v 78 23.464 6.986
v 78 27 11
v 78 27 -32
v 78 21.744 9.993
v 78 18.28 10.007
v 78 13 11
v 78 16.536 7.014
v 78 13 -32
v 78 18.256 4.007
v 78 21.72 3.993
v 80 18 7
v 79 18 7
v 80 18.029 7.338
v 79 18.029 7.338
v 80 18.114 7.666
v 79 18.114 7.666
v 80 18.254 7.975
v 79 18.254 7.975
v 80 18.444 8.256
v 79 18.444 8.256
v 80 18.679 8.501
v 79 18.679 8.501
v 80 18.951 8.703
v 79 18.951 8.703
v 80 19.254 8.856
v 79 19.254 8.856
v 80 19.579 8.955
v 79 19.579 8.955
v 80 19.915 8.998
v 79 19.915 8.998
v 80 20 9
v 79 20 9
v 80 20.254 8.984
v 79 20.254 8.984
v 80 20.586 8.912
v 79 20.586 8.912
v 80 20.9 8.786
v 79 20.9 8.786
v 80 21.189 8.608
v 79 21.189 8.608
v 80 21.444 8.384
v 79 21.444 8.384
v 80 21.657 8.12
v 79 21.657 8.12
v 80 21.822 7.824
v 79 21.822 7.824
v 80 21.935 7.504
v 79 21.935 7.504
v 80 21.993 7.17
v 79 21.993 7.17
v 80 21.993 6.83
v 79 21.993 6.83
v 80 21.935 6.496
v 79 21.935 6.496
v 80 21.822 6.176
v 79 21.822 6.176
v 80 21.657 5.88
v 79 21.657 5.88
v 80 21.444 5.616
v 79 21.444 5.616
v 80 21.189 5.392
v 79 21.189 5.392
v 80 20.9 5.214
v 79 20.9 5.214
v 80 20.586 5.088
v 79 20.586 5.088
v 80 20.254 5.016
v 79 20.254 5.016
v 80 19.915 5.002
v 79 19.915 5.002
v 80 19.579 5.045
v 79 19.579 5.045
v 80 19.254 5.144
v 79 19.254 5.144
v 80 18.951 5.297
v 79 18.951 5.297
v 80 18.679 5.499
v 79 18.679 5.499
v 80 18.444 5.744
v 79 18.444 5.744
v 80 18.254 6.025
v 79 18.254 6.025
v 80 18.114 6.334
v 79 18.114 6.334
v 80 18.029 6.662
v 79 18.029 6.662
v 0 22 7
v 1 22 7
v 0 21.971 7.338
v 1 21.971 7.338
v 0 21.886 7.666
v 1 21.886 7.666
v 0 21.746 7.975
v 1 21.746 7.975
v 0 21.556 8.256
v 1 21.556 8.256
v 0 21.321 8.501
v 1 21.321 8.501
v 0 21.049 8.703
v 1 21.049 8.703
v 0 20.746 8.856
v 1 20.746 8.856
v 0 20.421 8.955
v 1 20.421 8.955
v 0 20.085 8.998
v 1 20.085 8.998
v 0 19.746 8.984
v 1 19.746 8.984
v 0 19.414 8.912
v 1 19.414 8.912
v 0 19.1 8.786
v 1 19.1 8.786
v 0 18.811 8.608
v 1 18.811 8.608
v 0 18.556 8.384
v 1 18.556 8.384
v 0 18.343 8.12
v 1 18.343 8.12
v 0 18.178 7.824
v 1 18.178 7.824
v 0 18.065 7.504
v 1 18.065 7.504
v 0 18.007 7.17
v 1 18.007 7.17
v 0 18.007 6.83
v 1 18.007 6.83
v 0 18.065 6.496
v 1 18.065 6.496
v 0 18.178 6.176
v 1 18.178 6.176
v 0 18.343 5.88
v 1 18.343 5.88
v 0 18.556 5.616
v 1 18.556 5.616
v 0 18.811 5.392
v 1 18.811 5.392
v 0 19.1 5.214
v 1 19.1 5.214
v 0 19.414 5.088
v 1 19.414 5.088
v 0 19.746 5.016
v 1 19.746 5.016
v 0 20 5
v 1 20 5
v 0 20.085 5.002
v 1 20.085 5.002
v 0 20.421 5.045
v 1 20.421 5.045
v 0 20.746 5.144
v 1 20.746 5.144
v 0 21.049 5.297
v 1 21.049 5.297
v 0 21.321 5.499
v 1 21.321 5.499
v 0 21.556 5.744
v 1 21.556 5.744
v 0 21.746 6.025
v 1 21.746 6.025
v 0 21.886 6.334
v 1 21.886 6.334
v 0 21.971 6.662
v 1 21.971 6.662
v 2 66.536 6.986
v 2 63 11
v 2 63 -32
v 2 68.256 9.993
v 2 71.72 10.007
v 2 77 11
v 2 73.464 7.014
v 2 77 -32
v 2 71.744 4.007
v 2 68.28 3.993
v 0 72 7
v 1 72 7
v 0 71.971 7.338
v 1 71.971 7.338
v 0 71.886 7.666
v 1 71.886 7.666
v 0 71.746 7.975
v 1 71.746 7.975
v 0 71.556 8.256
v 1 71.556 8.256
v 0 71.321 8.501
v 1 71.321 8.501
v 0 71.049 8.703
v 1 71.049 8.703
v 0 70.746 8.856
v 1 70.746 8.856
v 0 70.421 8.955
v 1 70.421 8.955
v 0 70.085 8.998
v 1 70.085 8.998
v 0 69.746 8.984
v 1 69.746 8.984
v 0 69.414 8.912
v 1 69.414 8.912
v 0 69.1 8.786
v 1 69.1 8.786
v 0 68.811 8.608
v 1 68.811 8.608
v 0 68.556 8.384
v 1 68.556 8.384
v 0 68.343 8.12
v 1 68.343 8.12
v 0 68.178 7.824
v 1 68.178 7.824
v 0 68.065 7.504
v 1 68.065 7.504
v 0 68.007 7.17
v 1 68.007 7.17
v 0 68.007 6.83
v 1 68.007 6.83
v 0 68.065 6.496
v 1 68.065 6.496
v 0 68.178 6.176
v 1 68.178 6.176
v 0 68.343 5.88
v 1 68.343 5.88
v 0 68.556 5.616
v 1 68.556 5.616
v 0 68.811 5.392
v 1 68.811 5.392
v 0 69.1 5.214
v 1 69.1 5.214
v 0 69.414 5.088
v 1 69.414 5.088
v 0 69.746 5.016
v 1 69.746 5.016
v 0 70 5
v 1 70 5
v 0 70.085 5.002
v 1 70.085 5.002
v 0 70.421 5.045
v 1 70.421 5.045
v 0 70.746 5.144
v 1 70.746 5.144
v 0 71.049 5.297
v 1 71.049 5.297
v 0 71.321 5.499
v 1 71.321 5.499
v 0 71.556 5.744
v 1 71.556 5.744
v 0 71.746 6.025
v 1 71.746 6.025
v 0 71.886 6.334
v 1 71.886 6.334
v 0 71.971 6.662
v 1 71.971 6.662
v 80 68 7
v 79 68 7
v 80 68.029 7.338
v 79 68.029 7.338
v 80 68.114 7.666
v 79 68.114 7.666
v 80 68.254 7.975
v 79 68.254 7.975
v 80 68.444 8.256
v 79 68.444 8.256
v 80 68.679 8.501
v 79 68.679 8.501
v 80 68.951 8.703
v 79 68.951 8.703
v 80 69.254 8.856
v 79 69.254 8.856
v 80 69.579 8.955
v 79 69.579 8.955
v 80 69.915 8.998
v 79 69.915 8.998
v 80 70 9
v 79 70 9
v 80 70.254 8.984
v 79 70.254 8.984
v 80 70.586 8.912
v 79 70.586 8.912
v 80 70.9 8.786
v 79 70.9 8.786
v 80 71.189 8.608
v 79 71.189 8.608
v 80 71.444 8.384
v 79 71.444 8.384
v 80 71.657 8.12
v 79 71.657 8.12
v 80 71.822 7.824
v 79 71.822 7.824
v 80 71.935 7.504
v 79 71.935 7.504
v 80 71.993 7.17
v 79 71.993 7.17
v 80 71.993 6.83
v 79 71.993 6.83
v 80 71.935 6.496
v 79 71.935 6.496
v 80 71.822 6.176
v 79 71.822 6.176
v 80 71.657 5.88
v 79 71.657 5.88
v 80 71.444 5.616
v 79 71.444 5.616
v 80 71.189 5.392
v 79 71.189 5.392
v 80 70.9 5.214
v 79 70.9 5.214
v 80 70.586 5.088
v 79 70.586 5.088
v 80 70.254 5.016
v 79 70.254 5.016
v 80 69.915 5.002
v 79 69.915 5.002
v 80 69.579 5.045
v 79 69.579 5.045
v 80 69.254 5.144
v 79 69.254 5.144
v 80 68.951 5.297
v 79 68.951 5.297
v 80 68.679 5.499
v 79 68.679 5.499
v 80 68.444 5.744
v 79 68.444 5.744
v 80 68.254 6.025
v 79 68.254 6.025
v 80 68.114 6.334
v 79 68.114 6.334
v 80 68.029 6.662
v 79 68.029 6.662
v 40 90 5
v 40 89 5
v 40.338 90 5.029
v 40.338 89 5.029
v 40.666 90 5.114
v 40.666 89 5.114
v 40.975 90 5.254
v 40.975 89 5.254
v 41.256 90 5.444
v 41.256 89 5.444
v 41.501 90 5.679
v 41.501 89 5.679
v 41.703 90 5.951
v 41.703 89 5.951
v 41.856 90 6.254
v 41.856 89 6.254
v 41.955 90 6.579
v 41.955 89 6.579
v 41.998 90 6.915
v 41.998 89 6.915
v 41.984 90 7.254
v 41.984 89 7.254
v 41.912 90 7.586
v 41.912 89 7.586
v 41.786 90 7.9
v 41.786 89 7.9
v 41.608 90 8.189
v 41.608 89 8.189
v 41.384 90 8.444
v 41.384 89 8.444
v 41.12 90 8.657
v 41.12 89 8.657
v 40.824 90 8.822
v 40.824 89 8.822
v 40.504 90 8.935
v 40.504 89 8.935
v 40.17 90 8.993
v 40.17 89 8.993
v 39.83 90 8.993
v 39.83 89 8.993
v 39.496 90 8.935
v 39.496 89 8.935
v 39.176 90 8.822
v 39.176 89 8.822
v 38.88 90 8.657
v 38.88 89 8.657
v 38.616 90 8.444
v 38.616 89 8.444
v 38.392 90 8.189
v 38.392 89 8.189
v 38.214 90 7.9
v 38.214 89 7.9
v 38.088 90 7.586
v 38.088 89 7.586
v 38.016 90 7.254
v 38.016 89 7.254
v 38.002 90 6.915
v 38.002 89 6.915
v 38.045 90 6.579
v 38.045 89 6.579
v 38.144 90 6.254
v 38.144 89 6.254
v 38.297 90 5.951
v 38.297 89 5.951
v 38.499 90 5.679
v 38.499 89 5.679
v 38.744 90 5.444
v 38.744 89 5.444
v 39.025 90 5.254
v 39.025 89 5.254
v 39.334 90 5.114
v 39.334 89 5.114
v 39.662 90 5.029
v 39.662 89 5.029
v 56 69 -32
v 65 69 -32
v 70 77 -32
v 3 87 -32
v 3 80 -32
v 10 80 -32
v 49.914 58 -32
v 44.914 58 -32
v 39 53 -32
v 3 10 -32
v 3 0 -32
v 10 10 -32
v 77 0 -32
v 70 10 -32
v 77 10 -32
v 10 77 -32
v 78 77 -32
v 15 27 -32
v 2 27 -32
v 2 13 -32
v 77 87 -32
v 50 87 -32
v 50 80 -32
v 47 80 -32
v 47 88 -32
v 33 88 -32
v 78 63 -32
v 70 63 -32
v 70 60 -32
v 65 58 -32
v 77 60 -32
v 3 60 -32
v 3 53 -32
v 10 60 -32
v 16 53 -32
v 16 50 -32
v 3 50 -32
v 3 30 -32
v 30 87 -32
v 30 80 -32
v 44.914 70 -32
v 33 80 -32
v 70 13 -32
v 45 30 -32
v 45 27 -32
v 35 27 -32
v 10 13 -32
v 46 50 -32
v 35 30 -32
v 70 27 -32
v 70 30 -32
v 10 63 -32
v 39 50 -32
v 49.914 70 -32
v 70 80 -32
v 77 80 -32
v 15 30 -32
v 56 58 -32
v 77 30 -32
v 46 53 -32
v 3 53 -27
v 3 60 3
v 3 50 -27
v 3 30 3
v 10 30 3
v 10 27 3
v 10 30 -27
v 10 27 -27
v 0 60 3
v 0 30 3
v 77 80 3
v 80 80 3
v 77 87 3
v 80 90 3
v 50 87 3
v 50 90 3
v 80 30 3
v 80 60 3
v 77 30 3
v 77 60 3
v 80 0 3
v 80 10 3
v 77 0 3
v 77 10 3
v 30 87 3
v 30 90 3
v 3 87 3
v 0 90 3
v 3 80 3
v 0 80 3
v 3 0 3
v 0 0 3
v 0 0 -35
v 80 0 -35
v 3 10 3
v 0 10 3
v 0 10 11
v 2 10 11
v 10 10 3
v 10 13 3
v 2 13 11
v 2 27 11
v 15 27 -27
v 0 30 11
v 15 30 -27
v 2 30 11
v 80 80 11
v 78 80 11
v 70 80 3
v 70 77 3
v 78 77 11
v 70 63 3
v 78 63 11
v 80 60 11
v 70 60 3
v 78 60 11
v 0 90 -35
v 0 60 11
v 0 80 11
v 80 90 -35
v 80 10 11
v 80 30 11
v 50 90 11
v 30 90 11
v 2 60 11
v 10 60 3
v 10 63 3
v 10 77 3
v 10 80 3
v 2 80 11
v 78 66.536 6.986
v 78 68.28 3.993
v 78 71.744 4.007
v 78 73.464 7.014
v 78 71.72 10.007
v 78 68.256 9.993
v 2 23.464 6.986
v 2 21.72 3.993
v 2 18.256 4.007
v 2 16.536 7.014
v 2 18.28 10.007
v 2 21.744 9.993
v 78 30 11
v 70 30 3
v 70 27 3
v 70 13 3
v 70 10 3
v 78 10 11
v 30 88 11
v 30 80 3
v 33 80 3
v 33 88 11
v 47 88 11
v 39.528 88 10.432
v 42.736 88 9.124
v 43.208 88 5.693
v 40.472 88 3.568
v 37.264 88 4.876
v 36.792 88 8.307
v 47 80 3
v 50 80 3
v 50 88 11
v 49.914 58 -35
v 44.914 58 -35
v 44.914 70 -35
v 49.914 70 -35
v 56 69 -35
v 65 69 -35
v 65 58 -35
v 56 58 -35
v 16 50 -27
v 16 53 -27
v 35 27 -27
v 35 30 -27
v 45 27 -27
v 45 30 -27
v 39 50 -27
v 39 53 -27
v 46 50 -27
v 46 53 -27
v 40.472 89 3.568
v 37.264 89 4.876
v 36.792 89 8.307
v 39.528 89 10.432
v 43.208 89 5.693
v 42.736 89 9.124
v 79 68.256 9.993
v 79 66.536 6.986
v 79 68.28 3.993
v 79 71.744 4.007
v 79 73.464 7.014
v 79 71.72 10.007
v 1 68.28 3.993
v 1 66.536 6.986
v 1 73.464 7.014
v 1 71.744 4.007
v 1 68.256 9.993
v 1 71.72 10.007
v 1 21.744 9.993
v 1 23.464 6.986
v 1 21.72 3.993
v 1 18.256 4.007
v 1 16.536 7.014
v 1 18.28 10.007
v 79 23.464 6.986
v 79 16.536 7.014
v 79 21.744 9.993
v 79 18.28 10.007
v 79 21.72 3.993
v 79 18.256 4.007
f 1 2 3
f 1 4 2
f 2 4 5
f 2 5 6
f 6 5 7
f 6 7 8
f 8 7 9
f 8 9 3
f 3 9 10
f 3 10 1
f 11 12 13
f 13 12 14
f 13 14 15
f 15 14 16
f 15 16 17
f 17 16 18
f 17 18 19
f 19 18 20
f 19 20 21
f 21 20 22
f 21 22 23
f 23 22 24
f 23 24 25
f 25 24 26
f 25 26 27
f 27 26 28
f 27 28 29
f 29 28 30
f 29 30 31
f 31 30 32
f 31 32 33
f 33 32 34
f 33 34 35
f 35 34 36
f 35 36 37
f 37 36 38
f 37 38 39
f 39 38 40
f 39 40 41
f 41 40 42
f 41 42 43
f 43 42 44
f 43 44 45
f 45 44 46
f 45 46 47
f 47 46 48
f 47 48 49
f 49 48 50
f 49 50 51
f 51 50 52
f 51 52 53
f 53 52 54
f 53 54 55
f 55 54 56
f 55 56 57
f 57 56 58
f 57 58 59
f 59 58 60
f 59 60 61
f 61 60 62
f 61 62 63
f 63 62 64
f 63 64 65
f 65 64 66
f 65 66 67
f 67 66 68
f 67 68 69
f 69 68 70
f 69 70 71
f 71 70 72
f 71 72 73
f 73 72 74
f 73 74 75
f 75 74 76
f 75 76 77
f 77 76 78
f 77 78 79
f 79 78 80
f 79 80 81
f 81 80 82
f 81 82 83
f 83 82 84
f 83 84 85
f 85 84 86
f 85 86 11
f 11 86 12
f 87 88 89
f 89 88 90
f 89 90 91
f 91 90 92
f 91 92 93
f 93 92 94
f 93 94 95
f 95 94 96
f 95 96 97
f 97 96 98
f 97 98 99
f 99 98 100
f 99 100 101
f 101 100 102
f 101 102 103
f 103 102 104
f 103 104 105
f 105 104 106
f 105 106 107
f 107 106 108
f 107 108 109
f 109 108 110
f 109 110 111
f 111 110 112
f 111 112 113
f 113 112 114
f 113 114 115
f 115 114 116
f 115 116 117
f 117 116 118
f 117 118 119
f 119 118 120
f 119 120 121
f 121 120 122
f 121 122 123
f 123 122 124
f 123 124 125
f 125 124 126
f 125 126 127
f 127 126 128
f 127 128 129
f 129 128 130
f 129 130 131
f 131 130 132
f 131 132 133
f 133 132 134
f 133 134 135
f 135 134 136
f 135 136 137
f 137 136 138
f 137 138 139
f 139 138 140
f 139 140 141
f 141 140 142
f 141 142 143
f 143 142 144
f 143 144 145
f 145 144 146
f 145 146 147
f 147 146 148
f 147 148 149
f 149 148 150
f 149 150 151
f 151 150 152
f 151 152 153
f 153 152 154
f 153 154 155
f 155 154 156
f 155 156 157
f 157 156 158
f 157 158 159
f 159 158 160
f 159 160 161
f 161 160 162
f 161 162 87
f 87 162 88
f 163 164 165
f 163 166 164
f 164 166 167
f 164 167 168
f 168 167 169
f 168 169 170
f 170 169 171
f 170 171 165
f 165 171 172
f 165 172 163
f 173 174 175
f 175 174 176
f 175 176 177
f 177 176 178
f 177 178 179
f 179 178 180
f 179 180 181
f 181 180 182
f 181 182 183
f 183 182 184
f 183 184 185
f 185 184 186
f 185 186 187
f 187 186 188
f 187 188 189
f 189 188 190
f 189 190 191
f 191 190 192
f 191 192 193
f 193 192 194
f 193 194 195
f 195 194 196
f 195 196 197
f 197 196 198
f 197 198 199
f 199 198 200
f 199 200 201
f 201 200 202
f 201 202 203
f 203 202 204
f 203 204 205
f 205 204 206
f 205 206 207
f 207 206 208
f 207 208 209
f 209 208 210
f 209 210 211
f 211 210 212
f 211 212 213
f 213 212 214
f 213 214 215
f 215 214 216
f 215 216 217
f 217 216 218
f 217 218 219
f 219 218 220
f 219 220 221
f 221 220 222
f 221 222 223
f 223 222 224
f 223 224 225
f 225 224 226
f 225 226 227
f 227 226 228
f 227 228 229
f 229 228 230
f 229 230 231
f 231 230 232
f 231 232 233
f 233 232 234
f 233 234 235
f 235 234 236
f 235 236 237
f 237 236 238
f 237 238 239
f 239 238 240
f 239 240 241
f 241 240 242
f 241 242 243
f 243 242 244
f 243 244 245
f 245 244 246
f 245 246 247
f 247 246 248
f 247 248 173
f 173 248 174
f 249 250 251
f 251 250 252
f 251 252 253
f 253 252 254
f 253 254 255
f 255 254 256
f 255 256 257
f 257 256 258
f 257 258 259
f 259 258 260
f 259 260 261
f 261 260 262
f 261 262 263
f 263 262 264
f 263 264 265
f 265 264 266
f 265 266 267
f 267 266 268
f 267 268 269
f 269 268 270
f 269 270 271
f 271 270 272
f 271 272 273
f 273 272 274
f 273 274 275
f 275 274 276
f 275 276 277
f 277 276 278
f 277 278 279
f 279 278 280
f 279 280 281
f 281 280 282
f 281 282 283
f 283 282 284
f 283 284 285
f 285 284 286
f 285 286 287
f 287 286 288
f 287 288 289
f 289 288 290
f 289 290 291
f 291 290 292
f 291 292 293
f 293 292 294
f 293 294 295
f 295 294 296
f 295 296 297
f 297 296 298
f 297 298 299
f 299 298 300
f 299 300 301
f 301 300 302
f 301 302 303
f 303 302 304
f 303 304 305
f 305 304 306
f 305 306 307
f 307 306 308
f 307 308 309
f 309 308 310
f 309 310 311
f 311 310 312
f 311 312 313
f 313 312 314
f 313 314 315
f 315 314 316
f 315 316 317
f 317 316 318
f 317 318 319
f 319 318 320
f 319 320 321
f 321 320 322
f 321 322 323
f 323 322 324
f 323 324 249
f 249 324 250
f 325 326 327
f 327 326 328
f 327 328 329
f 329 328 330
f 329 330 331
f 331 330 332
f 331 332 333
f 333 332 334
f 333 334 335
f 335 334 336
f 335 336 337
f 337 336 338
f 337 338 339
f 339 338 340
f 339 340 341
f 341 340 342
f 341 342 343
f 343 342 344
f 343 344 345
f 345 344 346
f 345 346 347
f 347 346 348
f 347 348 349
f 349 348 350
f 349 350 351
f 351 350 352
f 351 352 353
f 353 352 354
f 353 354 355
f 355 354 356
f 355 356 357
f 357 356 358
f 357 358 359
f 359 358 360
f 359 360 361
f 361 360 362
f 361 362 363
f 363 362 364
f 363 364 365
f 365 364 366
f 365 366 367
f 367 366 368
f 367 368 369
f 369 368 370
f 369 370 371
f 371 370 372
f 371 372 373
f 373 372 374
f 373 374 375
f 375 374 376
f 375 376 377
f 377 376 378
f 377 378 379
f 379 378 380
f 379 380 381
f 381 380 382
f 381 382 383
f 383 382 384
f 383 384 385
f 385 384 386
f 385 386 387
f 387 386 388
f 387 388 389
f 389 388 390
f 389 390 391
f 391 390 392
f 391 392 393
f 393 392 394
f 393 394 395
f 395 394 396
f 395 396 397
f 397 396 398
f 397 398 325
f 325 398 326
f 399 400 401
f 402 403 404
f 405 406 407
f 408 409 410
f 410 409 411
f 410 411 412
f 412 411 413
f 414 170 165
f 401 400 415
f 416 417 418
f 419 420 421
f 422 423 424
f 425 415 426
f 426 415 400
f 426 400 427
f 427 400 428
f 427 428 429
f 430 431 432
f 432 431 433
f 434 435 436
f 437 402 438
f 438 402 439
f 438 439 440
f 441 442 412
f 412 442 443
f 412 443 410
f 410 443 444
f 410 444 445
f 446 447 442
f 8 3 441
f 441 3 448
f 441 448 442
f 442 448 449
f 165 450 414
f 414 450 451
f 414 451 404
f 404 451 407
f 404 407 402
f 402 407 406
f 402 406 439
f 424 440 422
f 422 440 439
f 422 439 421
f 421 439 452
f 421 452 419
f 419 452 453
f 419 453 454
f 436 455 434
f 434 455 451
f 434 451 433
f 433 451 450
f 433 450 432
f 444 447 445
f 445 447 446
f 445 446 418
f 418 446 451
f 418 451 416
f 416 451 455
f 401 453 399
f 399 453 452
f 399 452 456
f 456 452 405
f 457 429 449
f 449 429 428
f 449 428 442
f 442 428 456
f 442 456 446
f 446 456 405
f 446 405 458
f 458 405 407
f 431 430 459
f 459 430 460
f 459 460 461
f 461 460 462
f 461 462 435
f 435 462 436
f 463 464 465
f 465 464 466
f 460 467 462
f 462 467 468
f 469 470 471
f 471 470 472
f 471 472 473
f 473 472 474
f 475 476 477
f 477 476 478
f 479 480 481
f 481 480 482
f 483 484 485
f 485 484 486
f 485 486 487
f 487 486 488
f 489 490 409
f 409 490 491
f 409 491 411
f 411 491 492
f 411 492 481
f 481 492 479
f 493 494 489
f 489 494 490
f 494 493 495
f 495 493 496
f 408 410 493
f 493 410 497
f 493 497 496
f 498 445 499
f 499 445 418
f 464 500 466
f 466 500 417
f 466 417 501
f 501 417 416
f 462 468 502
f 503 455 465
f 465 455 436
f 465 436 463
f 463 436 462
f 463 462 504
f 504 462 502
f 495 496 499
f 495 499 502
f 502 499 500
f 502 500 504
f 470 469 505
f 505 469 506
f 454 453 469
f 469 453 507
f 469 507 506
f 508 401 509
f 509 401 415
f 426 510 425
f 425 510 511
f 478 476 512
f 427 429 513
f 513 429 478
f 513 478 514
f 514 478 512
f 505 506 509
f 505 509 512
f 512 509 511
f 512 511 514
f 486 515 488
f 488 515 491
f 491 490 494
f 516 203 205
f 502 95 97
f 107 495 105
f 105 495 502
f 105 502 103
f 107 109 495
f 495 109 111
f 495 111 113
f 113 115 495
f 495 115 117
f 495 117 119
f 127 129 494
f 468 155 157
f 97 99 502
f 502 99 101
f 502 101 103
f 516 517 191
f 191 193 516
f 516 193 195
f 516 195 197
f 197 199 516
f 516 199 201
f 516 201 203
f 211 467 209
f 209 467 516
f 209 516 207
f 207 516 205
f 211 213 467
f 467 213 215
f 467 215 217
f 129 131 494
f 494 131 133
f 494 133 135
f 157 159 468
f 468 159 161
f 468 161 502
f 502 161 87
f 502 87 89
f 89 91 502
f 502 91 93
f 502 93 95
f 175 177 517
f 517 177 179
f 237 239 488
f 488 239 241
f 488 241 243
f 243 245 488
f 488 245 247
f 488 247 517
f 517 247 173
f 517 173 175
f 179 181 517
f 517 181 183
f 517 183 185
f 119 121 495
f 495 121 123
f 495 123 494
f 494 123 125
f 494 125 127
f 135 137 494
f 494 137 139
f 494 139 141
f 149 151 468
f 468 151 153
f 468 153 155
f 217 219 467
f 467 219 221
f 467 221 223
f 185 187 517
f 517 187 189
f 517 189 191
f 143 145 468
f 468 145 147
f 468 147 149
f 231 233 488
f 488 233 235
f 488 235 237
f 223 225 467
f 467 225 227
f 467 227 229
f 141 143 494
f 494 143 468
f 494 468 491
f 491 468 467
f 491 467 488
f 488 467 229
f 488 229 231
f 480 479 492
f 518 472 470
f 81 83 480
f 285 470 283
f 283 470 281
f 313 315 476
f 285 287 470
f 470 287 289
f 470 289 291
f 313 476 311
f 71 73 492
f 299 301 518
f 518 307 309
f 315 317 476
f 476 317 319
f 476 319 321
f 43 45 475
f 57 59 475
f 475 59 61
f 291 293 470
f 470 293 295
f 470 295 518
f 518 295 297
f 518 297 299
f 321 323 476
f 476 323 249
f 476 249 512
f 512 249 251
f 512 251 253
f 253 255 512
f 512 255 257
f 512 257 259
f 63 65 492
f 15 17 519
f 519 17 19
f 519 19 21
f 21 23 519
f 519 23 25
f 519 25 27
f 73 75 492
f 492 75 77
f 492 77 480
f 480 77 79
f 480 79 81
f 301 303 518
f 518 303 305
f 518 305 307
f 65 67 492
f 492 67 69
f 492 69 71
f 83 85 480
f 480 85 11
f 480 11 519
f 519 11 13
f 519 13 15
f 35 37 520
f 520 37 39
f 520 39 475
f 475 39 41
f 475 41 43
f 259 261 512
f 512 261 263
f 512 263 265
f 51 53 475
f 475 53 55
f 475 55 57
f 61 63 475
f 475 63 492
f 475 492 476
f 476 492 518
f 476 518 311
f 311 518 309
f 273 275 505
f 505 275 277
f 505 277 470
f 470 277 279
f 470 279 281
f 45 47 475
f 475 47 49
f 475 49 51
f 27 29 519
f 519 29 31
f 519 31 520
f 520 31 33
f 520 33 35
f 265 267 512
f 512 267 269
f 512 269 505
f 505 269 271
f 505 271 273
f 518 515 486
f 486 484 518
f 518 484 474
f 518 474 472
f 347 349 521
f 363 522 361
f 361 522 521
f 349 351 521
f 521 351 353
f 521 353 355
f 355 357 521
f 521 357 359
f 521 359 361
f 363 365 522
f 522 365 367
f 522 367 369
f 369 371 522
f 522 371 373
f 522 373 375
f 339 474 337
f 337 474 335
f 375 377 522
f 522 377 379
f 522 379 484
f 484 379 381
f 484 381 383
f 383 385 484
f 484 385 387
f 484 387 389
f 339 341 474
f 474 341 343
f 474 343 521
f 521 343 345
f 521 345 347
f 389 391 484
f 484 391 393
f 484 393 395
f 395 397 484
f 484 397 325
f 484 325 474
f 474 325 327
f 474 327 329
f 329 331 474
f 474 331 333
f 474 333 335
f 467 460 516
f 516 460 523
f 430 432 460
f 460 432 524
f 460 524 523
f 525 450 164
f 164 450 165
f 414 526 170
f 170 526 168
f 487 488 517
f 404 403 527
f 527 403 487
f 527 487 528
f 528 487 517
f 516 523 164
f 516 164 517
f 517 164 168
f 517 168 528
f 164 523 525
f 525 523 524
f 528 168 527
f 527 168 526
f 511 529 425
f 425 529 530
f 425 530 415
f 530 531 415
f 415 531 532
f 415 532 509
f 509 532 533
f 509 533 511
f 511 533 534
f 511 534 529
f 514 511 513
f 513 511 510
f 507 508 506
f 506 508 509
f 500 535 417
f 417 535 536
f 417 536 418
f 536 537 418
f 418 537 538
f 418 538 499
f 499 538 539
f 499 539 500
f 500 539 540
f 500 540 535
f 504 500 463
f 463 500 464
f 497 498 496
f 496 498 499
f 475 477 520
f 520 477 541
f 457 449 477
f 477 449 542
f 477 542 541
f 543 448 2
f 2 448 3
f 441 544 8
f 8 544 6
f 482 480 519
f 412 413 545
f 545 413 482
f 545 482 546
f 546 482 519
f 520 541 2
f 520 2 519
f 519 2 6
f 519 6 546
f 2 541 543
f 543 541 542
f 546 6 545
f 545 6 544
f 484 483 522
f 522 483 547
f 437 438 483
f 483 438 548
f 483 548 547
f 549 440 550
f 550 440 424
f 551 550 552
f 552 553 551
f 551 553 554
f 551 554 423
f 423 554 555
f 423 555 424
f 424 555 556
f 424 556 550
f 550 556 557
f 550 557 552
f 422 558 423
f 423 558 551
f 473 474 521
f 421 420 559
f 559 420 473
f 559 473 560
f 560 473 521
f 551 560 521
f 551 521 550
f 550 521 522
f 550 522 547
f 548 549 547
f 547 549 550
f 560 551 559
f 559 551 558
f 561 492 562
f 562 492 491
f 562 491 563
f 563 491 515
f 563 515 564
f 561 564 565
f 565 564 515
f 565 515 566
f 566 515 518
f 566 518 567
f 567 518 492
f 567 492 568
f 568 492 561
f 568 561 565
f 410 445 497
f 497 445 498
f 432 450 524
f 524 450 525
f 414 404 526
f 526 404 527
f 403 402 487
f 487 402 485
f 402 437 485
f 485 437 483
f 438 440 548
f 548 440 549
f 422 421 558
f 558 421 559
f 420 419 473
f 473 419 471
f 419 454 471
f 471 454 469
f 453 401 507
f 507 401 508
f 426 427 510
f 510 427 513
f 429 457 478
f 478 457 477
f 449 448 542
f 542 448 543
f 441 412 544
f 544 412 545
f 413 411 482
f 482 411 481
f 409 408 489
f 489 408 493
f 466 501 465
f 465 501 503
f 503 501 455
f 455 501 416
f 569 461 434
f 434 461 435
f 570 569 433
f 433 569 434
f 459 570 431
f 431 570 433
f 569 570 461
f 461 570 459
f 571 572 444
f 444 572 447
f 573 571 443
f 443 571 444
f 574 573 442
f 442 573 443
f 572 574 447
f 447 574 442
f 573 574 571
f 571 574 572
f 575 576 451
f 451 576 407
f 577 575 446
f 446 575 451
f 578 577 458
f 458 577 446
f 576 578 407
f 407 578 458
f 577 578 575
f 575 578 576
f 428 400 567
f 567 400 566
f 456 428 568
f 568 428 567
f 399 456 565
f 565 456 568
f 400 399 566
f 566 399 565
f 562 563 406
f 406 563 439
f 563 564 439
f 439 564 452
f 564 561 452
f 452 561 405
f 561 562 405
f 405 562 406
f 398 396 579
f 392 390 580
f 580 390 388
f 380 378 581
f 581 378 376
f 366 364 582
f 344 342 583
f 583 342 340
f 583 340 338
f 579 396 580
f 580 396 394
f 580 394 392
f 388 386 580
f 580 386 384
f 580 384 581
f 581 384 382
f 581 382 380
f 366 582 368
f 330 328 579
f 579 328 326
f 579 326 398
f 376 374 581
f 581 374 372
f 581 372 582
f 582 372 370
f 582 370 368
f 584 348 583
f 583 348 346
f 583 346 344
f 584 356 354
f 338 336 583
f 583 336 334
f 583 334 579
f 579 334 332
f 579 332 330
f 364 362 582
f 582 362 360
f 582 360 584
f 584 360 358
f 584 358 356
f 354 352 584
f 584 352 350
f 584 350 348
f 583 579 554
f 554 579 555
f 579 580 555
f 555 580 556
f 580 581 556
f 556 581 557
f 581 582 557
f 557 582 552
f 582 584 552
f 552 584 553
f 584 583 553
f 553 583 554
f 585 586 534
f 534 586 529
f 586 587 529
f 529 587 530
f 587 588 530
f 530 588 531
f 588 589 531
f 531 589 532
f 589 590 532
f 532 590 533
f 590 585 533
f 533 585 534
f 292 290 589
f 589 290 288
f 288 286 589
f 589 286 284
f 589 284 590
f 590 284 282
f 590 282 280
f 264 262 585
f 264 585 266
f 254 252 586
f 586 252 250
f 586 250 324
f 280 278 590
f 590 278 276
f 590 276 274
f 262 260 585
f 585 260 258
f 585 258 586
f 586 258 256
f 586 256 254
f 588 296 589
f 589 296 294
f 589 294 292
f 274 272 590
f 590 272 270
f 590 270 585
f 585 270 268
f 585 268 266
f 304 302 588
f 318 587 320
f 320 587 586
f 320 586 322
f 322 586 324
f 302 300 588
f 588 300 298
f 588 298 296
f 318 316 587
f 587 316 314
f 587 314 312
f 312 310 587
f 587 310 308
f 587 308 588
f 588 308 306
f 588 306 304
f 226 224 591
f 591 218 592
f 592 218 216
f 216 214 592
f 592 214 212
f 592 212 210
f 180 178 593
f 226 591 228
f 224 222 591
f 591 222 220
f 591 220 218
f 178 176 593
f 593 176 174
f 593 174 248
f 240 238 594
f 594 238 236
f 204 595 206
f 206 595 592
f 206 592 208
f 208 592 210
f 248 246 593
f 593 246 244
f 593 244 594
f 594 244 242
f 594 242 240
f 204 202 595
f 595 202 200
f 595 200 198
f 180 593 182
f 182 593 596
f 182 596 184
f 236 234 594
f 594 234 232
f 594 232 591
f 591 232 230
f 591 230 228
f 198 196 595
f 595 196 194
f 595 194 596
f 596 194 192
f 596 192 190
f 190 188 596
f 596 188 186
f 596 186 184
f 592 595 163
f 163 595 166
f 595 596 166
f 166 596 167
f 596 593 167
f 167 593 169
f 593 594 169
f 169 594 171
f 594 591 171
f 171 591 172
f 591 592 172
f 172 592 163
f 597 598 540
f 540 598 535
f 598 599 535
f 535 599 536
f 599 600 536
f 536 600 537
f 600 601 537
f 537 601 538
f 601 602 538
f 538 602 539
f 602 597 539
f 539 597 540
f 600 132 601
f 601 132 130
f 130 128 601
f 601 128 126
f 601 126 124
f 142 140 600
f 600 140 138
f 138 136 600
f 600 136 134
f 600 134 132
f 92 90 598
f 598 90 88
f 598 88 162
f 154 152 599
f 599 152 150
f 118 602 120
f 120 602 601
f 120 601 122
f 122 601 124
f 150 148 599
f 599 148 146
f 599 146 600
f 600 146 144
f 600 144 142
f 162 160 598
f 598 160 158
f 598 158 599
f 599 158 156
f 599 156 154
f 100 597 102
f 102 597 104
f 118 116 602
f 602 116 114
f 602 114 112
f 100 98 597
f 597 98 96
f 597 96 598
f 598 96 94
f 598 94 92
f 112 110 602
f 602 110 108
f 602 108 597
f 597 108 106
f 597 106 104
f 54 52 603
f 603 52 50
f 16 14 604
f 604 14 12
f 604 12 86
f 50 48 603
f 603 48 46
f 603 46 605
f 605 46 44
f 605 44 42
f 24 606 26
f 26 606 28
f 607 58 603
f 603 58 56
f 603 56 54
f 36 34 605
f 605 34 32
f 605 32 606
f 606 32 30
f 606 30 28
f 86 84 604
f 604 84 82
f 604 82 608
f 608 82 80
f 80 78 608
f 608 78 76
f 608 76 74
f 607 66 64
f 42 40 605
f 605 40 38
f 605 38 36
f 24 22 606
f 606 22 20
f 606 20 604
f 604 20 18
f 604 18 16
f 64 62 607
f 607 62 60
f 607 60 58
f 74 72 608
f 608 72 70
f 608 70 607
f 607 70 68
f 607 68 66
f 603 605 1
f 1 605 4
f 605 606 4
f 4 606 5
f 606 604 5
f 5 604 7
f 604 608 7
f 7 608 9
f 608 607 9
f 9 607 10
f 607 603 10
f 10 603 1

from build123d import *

# Parameters (mm, degrees)
SKETCH1_W               = 80
SKETCH1_H               = 90
BOSS_EXTRUDE1_DEPTH     = 3
BOSS_EXTRUDE2_DEPTH     = 8
CUT_EXTRUDE1_DEPTH      = 114.670576668
SKETCH6_R               = 2
CUT_EXTRUDE3_DEPTH      = 25
MIRROR5_COPY_1_DEPTH    = 8
MIRROR5_COPY_2_DEPTH    = 114.670576668
MIRROR5_COPY_3_SKETCH_R = 2
MIRROR5_COPY_3_DEPTH    = 25
BOSS_EXTRUDE3_DEPTH     = 8
CUT_EXTRUDE2_DEPTH      = 25
SKETCH7_R               = 2
CUT_EXTRUDE4_DEPTH      = 25
SKETCH9_W               = 80
SKETCH9_H               = 90
BOSS_EXTRUDE7_DEPTH     = 35
CUT_EXTRUDE5_DEPTH      = 35
SKETCH11_W              = 13
SKETCH11_H              = 3
SKETCH11_W_2            = 10
SKETCH11_W_3            = 7
BOSS_EXTRUDE8_DEPTH     = 5
SKETCH12_W              = 9
SKETCH12_H              = 11
CUT_EXTRUDE6_DEPTH      = 46
SKETCH13_W              = 5
SKETCH13_H              = 12
CUT_EXTRUDE7_DEPTH      = 128.863208156
CUT_EXTRUDE8_DEPTH      = 1
CUT_EXTRUDE9_DEPTH      = 1
MIRROR7_COPY_1_DEPTH    = 1


with BuildPart() as part:
    # Sketch1 → Boss-Extrude1 (new body)
    with BuildSketch(Plane.XY):
        with Locations((40, 45)):
            Rectangle(SKETCH1_W, SKETCH1_H)
    extrude(amount=BOSS_EXTRUDE1_DEPTH)

    # Sketch2 → Boss-Extrude2 (add)
    with BuildSketch(Plane.XY.offset(3)):
        Polygon((0, 80), (10, 80), (10, 77), (2, 77), (2, 63), (10, 63), (10, 60), (0, 60), align=None)
    boss_extrude2 = extrude(amount=BOSS_EXTRUDE2_DEPTH)

    # Sketch3 → Cut-Extrude1 (cut, through all)
    with BuildSketch(Plane(origin=(0, 80, 0), x_dir=(1, 0, 0), z_dir=(0, 1, 0))):
        Polygon((10, -3), (2, -11), (10, -11), align=None)
    cut_extrude1 = extrude(amount=-CUT_EXTRUDE1_DEPTH, mode=Mode.SUBTRACT)

    # Sketch6 → Cut-Extrude3 (cut)
    with BuildSketch(Plane(origin=(2, 0, 0), x_dir=(0, 0, -1), z_dir=(1, 0, 0))):
        with Locations(Location((-7, 70, 0), (0, 0, 90))):
            Circle(SKETCH6_R)
    cut_extrude3 = extrude(amount=-CUT_EXTRUDE3_DEPTH, mode=Mode.SUBTRACT)

    # Mirror4: Boss-Extrude2, Cut-Extrude1, Cut-Extrude3 across plane
    add(boss_extrude2.mirror(Plane(origin=(40, 0, 0), x_dir=(0, 0, 1), z_dir=(1, 0, 0))))
    add(cut_extrude1.mirror(Plane(origin=(40, 0, 0), x_dir=(0, 0, 1), z_dir=(1, 0, 0))), mode=Mode.SUBTRACT)
    add(cut_extrude3.mirror(Plane(origin=(40, 0, 0), x_dir=(0, 0, 1), z_dir=(1, 0, 0))), mode=Mode.SUBTRACT)

    # Mirror5: Boss-Extrude2, Cut-Extrude1, Cut-Extrude3 across plane
    add(boss_extrude2.mirror(Plane(origin=(0, 45, 0), x_dir=(0, 0, 1), z_dir=(0, -1, 0))))
    add(cut_extrude1.mirror(Plane(origin=(0, 45, 0), x_dir=(0, 0, 1), z_dir=(0, -1, 0))), mode=Mode.SUBTRACT)
    add(cut_extrude3.mirror(Plane(origin=(0, 45, 0), x_dir=(0, 0, 1), z_dir=(0, -1, 0))), mode=Mode.SUBTRACT)

    # Mirror5 copy 1 sketch → Mirror5 copy 1 (add)
    with BuildSketch(Plane(origin=(80, 90, 3), x_dir=(-1, 0, 0), z_dir=(0, 0, 1))):
        Polygon((0, 80), (10, 80), (10, 77), (2, 77), (2, 63), (10, 63), (10, 60), (0, 60), align=None)
    extrude(amount=MIRROR5_COPY_1_DEPTH)

    # Mirror5 copy 2 sketch → Mirror5 copy 2 (cut, through all)
    with BuildSketch(Plane(origin=(80, 10, 0), x_dir=(-1, 0, 0), z_dir=(0, -1, 0))):
        Polygon((10, -3), (2, -11), (10, -11), align=None)
    extrude(amount=-MIRROR5_COPY_2_DEPTH, mode=Mode.SUBTRACT)

    # Mirror5 copy 3 sketch → Mirror5 copy 3 (cut)
    with BuildSketch(Plane(origin=(78, 90, 0), x_dir=(0, 0, -1), z_dir=(-1, 0, 0))):
        with Locations(Location((-7, 70, 0), (0, 0, 90))):
            Circle(MIRROR5_COPY_3_SKETCH_R)
    extrude(amount=-MIRROR5_COPY_3_DEPTH, mode=Mode.SUBTRACT)

    # Sketch4 → Boss-Extrude3 (add)
    with BuildSketch(Plane.XY.offset(3)):
        Polygon((30, 90), (50, 90), (50, 80), (47, 80), (47, 88), (33, 88), (33, 80), (30, 80), align=None)
    extrude(amount=BOSS_EXTRUDE3_DEPTH)

    # Sketch5 → Cut-Extrude2 (cut)
    with BuildSketch(Plane.ZY.offset(-30)):
        Polygon((3, 80), (11, 88), (11, 80), align=None)
    extrude(amount=-CUT_EXTRUDE2_DEPTH, mode=Mode.SUBTRACT)

    # Sketch7 → Cut-Extrude4 (cut)
    with BuildSketch(Plane.XZ.offset(-88)):
        with Locations(Location((40, 7, 0), (0, 0, 270))):
            Circle(SKETCH7_R)
    extrude(amount=-CUT_EXTRUDE4_DEPTH, mode=Mode.SUBTRACT)

    # Sketch9 → Boss-Extrude7 (add)
    with BuildSketch(Plane(origin=(0, 0, 0), x_dir=(-1, 0, 0), z_dir=(0, 0, -1))):
        with Locations((-40, 45)):
            Rectangle(SKETCH9_W, SKETCH9_H)
    extrude(amount=BOSS_EXTRUDE7_DEPTH)

    # Sketch10 → Cut-Extrude5 (cut)
    with BuildSketch(Plane.XY.offset(3)):
        Polygon((30, 87), (3, 87), (3, 80), (10, 80), (10, 77), (2, 77), (2, 63), (10, 63), (10, 60), (3, 60), (3, 30), (10, 30), (10, 27), (2, 27), (2, 13), (10, 13), (10, 10), (3, 10), (3, 0), (77, 0), (77, 10), (70, 10), (70, 13), (78, 13), (78, 27), (70, 27), (70, 30), (77, 30), (77, 60), (70, 60), (70, 63), (78, 63), (78, 77), (70, 77), (70, 80), (77, 80), (77, 87), (50, 87), (50, 80), (47, 80), (47, 88), (33, 88), (33, 80), (30, 80), align=None)
    extrude(amount=-CUT_EXTRUDE5_DEPTH, mode=Mode.SUBTRACT)

    # Sketch11 → Boss-Extrude8 (add)
    with BuildSketch(Plane.XY.offset(-32)):
        with Locations((8.5, 28.5)):
            Rectangle(SKETCH11_W, SKETCH11_H)
        with Locations((9.5, 51.5)):
            Rectangle(SKETCH11_W, SKETCH11_H)
        with Locations((40, 28.5)):
            Rectangle(SKETCH11_W_2, SKETCH11_H)
        with Locations((42.5, 51.5)):
            Rectangle(SKETCH11_W_3, SKETCH11_H)
    extrude(amount=BOSS_EXTRUDE8_DEPTH)

    # Sketch12 → Cut-Extrude6 (cut)
    with BuildSketch(Plane.XY.offset(-32)):
        with Locations((60.5, 63.5)):
            Rectangle(SKETCH12_W, SKETCH12_H)
    extrude(amount=-CUT_EXTRUDE6_DEPTH, mode=Mode.SUBTRACT)

    # Sketch13 → Cut-Extrude7 (cut, through all)
    with BuildSketch(Plane.XY.offset(-32)):
        with Locations((47.414473157, 64)):
            Rectangle(SKETCH13_W, SKETCH13_H)
    extrude(amount=-CUT_EXTRUDE7_DEPTH, mode=Mode.SUBTRACT)

    # Sketch14 → Cut-Extrude8 (cut)
    with BuildSketch(Plane.XZ.offset(-88)):
        Polygon((43.207910709, 5.692594599), (42.736201645, 9.124429466), (39.528290936, 10.431834868), (36.792089291, 8.307405401), (37.263798355, 4.875570534), (40.471709064, 3.568165132), align=None)
    extrude(amount=-CUT_EXTRUDE8_DEPTH, mode=Mode.SUBTRACT)

    # Sketch15 → Cut-Extrude9 (cut)
    with BuildSketch(Plane.ZY.offset(-78)):
        Polygon((9.993076519, 68.256012342), (10.006875875, 71.720086472), (7.013799356, 73.46407413), (4.006923481, 71.743987658), (3.993124125, 68.279913528), (6.986200644, 66.53592587), align=None)
    cut_extrude9 = extrude(amount=-CUT_EXTRUDE9_DEPTH, mode=Mode.SUBTRACT)

    # Mirror6: Cut-Extrude9 across plane
    add(cut_extrude9.mirror(Plane(origin=(40, 0, 0), x_dir=(0, 0, 1), z_dir=(1, 0, 0))), mode=Mode.SUBTRACT)

    # Mirror7: Cut-Extrude9 across plane
    add(cut_extrude9.mirror(Plane(origin=(0, 45, 0), x_dir=(0, 0, 1), z_dir=(0, -1, 0))), mode=Mode.SUBTRACT)

    # Mirror7 copy 1 sketch → Mirror7 copy 1 (cut)
    with BuildSketch(Plane(origin=(2, 90, 0), x_dir=(0, 0, 1), z_dir=(1, 0, 0))):
        Polygon((9.993076519, 68.256012342), (10.006875875, 71.720086472), (7.013799356, 73.46407413), (4.006923481, 71.743987658), (3.993124125, 68.279913528), (6.986200644, 66.53592587), align=None)
    extrude(amount=-MIRROR7_COPY_1_DEPTH, mode=Mode.SUBTRACT)


solid = part.part
